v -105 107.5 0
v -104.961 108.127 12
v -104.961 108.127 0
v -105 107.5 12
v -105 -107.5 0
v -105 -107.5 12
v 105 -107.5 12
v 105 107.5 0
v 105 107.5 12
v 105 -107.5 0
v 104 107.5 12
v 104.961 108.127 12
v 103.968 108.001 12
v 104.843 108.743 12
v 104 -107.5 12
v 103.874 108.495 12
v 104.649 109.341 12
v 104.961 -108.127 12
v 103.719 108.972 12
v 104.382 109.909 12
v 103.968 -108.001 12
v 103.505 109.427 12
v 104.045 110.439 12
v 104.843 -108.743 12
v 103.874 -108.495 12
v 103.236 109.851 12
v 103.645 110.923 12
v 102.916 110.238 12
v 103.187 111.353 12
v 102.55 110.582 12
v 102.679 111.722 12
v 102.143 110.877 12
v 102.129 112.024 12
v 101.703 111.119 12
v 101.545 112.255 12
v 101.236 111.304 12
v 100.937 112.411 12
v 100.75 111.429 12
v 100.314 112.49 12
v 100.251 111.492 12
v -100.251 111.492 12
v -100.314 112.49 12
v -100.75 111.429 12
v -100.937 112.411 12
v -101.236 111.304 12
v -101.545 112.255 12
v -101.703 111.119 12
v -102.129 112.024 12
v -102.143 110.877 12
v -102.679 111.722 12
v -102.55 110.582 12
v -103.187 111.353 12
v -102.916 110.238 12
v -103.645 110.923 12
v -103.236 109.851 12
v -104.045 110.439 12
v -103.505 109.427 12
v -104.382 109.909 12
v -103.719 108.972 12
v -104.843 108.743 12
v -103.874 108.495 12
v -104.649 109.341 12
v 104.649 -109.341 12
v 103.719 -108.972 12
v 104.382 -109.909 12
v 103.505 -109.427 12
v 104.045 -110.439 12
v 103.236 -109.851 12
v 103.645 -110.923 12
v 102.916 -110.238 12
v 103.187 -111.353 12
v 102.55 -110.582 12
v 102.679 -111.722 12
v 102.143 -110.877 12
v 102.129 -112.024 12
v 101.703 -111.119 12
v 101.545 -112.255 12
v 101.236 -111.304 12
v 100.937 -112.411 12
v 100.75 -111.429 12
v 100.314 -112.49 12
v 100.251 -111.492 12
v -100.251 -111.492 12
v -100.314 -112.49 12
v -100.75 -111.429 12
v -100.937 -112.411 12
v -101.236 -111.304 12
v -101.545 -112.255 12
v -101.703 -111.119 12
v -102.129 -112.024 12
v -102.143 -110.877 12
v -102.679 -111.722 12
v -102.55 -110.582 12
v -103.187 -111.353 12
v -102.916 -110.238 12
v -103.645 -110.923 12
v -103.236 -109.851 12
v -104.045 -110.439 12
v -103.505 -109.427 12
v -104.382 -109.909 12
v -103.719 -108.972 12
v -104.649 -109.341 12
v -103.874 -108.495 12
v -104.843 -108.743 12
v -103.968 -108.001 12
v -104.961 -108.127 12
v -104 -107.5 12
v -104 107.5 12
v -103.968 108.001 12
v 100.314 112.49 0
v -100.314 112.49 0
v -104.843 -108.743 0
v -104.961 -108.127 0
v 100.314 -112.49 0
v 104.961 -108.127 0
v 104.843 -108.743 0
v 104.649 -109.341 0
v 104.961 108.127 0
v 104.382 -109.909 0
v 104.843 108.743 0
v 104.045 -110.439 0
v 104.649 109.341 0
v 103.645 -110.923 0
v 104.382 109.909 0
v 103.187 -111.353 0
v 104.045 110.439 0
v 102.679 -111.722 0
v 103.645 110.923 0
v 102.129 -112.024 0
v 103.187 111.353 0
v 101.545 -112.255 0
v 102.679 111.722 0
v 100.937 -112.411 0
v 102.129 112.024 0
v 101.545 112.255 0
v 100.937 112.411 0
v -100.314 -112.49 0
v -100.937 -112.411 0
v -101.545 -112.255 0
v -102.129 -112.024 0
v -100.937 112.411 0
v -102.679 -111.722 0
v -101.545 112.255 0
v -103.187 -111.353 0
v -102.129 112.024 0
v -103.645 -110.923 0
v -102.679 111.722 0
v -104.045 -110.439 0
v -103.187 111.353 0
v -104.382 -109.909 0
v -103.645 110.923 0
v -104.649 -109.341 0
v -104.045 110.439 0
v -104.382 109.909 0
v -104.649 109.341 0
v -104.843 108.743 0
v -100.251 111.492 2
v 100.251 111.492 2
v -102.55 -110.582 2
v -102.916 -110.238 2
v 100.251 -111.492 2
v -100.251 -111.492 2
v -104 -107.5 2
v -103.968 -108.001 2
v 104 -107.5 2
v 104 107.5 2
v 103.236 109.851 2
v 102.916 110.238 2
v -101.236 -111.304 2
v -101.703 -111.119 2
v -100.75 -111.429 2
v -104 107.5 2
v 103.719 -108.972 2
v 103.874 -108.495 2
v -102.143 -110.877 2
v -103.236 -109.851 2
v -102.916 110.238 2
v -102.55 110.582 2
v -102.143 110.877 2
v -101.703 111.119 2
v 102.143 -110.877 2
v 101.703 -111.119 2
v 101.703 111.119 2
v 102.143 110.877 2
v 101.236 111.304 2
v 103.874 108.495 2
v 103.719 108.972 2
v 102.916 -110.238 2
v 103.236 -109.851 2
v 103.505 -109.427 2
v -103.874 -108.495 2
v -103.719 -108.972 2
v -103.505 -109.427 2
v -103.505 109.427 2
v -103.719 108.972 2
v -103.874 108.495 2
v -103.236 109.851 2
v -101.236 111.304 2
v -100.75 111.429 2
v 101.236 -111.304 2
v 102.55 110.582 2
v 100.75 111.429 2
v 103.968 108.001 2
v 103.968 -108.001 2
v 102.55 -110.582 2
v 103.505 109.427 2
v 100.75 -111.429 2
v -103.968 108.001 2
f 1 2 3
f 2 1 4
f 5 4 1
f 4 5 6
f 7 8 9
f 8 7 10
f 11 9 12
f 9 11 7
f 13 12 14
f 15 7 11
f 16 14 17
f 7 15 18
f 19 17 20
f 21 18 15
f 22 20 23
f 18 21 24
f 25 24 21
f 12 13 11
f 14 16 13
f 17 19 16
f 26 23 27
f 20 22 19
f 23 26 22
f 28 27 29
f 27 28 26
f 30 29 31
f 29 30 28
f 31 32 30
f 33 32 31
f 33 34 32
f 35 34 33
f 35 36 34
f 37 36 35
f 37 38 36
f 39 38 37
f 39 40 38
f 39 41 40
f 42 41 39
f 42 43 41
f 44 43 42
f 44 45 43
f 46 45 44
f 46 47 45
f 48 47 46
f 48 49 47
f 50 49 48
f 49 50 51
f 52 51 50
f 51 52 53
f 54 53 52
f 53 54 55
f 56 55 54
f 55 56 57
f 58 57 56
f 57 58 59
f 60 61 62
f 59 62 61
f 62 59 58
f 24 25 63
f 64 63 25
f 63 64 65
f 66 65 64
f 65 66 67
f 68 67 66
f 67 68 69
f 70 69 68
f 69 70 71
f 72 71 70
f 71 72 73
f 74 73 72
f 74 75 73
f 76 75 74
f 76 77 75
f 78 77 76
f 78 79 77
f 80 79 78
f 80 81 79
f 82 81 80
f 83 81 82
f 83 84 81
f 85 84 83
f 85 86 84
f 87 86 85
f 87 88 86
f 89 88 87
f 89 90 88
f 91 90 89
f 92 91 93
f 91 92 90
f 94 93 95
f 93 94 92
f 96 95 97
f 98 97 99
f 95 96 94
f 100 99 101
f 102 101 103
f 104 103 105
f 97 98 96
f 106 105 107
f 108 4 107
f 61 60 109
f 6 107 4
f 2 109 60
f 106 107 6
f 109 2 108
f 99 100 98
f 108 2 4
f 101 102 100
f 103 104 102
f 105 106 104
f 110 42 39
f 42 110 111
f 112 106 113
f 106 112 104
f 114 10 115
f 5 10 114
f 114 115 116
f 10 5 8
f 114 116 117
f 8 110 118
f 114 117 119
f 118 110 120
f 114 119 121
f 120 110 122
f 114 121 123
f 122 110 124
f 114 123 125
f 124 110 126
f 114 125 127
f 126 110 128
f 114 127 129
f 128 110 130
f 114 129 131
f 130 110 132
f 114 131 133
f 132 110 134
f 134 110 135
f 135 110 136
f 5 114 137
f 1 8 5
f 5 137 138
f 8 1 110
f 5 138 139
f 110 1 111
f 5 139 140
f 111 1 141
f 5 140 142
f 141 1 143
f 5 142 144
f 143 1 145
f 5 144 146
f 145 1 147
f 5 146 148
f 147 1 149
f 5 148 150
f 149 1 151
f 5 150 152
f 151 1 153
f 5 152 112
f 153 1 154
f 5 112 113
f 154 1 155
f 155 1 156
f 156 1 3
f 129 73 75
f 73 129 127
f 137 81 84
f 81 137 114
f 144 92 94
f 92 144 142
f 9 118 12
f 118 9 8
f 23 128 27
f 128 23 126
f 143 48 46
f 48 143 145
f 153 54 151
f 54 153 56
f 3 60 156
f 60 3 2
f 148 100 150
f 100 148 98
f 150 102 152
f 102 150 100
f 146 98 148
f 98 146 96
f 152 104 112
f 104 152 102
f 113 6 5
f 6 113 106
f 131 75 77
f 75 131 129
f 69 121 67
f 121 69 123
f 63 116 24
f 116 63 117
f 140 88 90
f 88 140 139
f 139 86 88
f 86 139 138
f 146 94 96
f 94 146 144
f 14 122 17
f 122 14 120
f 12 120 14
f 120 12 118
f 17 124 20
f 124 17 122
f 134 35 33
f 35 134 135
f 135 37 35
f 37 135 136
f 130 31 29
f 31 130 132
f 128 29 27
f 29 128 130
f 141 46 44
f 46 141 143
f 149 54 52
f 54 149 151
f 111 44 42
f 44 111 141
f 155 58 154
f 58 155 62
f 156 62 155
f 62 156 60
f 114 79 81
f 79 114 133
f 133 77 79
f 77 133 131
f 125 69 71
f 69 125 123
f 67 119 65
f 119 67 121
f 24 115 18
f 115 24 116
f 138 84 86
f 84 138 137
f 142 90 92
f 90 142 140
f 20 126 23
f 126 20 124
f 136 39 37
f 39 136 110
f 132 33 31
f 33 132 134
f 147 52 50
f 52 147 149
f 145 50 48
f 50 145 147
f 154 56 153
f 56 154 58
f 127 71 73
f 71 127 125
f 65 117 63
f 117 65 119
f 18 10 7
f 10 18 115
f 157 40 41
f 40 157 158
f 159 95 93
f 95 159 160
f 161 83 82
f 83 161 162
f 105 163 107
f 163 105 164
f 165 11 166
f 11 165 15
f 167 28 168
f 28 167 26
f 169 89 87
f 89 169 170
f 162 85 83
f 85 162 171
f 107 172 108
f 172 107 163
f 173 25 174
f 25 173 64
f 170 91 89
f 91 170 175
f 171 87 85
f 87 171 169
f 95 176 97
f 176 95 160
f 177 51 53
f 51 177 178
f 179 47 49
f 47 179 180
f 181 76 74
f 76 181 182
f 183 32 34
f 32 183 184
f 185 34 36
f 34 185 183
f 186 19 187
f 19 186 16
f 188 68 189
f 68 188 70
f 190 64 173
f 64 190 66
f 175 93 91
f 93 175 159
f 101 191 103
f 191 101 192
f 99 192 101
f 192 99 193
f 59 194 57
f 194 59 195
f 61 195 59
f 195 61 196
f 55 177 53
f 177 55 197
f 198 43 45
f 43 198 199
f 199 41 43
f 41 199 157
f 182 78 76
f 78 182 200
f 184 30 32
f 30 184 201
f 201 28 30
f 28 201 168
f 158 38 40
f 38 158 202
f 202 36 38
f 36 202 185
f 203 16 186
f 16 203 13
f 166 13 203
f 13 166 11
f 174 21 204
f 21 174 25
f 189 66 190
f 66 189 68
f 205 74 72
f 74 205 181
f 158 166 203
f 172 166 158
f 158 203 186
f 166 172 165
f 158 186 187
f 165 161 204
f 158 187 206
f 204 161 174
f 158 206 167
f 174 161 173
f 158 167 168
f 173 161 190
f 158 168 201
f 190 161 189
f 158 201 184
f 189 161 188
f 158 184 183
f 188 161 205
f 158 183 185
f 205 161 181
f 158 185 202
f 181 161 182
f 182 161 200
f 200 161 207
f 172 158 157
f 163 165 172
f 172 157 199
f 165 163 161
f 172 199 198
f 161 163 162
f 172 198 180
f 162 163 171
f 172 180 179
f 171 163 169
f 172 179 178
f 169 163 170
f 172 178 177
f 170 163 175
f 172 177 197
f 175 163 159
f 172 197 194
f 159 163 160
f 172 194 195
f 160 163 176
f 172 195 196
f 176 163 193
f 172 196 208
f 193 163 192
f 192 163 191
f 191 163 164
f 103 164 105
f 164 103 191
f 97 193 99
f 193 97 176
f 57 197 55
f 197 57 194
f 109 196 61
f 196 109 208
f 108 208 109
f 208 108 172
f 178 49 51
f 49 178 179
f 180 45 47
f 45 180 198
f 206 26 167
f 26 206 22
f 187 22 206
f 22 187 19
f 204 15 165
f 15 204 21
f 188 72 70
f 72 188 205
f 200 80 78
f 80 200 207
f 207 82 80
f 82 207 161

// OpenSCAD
$fn = 50;


difference() {
	union() {
		hull() {
			translate(v = [-100.0000000000, 107.5000000000, 0]) {
				cylinder(h = 12, r = 5);
			}
			translate(v = [100.0000000000, 107.5000000000, 0]) {
				cylinder(h = 12, r = 5);
			}
			translate(v = [-100.0000000000, -107.5000000000, 0]) {
				cylinder(h = 12, r = 5);
			}
			translate(v = [100.0000000000, -107.5000000000, 0]) {
				cylinder(h = 12, r = 5);
			}
		}
	}
	union() {
		translate(v = [0, 0, 2]) {
			hull() {
				translate(v = [-100.0000000000, 107.5000000000, 0]) {
					cylinder(h = 10, r = 4);
				}
				translate(v = [100.0000000000, 107.5000000000, 0]) {
					cylinder(h = 10, r = 4);
				}
				translate(v = [-100.0000000000, -107.5000000000, 0]) {
					cylinder(h = 10, r = 4);
				}
				translate(v = [100.0000000000, -107.5000000000, 0]) {
					cylinder(h = 10, r = 4);
				}
			}
		}
	}
}
